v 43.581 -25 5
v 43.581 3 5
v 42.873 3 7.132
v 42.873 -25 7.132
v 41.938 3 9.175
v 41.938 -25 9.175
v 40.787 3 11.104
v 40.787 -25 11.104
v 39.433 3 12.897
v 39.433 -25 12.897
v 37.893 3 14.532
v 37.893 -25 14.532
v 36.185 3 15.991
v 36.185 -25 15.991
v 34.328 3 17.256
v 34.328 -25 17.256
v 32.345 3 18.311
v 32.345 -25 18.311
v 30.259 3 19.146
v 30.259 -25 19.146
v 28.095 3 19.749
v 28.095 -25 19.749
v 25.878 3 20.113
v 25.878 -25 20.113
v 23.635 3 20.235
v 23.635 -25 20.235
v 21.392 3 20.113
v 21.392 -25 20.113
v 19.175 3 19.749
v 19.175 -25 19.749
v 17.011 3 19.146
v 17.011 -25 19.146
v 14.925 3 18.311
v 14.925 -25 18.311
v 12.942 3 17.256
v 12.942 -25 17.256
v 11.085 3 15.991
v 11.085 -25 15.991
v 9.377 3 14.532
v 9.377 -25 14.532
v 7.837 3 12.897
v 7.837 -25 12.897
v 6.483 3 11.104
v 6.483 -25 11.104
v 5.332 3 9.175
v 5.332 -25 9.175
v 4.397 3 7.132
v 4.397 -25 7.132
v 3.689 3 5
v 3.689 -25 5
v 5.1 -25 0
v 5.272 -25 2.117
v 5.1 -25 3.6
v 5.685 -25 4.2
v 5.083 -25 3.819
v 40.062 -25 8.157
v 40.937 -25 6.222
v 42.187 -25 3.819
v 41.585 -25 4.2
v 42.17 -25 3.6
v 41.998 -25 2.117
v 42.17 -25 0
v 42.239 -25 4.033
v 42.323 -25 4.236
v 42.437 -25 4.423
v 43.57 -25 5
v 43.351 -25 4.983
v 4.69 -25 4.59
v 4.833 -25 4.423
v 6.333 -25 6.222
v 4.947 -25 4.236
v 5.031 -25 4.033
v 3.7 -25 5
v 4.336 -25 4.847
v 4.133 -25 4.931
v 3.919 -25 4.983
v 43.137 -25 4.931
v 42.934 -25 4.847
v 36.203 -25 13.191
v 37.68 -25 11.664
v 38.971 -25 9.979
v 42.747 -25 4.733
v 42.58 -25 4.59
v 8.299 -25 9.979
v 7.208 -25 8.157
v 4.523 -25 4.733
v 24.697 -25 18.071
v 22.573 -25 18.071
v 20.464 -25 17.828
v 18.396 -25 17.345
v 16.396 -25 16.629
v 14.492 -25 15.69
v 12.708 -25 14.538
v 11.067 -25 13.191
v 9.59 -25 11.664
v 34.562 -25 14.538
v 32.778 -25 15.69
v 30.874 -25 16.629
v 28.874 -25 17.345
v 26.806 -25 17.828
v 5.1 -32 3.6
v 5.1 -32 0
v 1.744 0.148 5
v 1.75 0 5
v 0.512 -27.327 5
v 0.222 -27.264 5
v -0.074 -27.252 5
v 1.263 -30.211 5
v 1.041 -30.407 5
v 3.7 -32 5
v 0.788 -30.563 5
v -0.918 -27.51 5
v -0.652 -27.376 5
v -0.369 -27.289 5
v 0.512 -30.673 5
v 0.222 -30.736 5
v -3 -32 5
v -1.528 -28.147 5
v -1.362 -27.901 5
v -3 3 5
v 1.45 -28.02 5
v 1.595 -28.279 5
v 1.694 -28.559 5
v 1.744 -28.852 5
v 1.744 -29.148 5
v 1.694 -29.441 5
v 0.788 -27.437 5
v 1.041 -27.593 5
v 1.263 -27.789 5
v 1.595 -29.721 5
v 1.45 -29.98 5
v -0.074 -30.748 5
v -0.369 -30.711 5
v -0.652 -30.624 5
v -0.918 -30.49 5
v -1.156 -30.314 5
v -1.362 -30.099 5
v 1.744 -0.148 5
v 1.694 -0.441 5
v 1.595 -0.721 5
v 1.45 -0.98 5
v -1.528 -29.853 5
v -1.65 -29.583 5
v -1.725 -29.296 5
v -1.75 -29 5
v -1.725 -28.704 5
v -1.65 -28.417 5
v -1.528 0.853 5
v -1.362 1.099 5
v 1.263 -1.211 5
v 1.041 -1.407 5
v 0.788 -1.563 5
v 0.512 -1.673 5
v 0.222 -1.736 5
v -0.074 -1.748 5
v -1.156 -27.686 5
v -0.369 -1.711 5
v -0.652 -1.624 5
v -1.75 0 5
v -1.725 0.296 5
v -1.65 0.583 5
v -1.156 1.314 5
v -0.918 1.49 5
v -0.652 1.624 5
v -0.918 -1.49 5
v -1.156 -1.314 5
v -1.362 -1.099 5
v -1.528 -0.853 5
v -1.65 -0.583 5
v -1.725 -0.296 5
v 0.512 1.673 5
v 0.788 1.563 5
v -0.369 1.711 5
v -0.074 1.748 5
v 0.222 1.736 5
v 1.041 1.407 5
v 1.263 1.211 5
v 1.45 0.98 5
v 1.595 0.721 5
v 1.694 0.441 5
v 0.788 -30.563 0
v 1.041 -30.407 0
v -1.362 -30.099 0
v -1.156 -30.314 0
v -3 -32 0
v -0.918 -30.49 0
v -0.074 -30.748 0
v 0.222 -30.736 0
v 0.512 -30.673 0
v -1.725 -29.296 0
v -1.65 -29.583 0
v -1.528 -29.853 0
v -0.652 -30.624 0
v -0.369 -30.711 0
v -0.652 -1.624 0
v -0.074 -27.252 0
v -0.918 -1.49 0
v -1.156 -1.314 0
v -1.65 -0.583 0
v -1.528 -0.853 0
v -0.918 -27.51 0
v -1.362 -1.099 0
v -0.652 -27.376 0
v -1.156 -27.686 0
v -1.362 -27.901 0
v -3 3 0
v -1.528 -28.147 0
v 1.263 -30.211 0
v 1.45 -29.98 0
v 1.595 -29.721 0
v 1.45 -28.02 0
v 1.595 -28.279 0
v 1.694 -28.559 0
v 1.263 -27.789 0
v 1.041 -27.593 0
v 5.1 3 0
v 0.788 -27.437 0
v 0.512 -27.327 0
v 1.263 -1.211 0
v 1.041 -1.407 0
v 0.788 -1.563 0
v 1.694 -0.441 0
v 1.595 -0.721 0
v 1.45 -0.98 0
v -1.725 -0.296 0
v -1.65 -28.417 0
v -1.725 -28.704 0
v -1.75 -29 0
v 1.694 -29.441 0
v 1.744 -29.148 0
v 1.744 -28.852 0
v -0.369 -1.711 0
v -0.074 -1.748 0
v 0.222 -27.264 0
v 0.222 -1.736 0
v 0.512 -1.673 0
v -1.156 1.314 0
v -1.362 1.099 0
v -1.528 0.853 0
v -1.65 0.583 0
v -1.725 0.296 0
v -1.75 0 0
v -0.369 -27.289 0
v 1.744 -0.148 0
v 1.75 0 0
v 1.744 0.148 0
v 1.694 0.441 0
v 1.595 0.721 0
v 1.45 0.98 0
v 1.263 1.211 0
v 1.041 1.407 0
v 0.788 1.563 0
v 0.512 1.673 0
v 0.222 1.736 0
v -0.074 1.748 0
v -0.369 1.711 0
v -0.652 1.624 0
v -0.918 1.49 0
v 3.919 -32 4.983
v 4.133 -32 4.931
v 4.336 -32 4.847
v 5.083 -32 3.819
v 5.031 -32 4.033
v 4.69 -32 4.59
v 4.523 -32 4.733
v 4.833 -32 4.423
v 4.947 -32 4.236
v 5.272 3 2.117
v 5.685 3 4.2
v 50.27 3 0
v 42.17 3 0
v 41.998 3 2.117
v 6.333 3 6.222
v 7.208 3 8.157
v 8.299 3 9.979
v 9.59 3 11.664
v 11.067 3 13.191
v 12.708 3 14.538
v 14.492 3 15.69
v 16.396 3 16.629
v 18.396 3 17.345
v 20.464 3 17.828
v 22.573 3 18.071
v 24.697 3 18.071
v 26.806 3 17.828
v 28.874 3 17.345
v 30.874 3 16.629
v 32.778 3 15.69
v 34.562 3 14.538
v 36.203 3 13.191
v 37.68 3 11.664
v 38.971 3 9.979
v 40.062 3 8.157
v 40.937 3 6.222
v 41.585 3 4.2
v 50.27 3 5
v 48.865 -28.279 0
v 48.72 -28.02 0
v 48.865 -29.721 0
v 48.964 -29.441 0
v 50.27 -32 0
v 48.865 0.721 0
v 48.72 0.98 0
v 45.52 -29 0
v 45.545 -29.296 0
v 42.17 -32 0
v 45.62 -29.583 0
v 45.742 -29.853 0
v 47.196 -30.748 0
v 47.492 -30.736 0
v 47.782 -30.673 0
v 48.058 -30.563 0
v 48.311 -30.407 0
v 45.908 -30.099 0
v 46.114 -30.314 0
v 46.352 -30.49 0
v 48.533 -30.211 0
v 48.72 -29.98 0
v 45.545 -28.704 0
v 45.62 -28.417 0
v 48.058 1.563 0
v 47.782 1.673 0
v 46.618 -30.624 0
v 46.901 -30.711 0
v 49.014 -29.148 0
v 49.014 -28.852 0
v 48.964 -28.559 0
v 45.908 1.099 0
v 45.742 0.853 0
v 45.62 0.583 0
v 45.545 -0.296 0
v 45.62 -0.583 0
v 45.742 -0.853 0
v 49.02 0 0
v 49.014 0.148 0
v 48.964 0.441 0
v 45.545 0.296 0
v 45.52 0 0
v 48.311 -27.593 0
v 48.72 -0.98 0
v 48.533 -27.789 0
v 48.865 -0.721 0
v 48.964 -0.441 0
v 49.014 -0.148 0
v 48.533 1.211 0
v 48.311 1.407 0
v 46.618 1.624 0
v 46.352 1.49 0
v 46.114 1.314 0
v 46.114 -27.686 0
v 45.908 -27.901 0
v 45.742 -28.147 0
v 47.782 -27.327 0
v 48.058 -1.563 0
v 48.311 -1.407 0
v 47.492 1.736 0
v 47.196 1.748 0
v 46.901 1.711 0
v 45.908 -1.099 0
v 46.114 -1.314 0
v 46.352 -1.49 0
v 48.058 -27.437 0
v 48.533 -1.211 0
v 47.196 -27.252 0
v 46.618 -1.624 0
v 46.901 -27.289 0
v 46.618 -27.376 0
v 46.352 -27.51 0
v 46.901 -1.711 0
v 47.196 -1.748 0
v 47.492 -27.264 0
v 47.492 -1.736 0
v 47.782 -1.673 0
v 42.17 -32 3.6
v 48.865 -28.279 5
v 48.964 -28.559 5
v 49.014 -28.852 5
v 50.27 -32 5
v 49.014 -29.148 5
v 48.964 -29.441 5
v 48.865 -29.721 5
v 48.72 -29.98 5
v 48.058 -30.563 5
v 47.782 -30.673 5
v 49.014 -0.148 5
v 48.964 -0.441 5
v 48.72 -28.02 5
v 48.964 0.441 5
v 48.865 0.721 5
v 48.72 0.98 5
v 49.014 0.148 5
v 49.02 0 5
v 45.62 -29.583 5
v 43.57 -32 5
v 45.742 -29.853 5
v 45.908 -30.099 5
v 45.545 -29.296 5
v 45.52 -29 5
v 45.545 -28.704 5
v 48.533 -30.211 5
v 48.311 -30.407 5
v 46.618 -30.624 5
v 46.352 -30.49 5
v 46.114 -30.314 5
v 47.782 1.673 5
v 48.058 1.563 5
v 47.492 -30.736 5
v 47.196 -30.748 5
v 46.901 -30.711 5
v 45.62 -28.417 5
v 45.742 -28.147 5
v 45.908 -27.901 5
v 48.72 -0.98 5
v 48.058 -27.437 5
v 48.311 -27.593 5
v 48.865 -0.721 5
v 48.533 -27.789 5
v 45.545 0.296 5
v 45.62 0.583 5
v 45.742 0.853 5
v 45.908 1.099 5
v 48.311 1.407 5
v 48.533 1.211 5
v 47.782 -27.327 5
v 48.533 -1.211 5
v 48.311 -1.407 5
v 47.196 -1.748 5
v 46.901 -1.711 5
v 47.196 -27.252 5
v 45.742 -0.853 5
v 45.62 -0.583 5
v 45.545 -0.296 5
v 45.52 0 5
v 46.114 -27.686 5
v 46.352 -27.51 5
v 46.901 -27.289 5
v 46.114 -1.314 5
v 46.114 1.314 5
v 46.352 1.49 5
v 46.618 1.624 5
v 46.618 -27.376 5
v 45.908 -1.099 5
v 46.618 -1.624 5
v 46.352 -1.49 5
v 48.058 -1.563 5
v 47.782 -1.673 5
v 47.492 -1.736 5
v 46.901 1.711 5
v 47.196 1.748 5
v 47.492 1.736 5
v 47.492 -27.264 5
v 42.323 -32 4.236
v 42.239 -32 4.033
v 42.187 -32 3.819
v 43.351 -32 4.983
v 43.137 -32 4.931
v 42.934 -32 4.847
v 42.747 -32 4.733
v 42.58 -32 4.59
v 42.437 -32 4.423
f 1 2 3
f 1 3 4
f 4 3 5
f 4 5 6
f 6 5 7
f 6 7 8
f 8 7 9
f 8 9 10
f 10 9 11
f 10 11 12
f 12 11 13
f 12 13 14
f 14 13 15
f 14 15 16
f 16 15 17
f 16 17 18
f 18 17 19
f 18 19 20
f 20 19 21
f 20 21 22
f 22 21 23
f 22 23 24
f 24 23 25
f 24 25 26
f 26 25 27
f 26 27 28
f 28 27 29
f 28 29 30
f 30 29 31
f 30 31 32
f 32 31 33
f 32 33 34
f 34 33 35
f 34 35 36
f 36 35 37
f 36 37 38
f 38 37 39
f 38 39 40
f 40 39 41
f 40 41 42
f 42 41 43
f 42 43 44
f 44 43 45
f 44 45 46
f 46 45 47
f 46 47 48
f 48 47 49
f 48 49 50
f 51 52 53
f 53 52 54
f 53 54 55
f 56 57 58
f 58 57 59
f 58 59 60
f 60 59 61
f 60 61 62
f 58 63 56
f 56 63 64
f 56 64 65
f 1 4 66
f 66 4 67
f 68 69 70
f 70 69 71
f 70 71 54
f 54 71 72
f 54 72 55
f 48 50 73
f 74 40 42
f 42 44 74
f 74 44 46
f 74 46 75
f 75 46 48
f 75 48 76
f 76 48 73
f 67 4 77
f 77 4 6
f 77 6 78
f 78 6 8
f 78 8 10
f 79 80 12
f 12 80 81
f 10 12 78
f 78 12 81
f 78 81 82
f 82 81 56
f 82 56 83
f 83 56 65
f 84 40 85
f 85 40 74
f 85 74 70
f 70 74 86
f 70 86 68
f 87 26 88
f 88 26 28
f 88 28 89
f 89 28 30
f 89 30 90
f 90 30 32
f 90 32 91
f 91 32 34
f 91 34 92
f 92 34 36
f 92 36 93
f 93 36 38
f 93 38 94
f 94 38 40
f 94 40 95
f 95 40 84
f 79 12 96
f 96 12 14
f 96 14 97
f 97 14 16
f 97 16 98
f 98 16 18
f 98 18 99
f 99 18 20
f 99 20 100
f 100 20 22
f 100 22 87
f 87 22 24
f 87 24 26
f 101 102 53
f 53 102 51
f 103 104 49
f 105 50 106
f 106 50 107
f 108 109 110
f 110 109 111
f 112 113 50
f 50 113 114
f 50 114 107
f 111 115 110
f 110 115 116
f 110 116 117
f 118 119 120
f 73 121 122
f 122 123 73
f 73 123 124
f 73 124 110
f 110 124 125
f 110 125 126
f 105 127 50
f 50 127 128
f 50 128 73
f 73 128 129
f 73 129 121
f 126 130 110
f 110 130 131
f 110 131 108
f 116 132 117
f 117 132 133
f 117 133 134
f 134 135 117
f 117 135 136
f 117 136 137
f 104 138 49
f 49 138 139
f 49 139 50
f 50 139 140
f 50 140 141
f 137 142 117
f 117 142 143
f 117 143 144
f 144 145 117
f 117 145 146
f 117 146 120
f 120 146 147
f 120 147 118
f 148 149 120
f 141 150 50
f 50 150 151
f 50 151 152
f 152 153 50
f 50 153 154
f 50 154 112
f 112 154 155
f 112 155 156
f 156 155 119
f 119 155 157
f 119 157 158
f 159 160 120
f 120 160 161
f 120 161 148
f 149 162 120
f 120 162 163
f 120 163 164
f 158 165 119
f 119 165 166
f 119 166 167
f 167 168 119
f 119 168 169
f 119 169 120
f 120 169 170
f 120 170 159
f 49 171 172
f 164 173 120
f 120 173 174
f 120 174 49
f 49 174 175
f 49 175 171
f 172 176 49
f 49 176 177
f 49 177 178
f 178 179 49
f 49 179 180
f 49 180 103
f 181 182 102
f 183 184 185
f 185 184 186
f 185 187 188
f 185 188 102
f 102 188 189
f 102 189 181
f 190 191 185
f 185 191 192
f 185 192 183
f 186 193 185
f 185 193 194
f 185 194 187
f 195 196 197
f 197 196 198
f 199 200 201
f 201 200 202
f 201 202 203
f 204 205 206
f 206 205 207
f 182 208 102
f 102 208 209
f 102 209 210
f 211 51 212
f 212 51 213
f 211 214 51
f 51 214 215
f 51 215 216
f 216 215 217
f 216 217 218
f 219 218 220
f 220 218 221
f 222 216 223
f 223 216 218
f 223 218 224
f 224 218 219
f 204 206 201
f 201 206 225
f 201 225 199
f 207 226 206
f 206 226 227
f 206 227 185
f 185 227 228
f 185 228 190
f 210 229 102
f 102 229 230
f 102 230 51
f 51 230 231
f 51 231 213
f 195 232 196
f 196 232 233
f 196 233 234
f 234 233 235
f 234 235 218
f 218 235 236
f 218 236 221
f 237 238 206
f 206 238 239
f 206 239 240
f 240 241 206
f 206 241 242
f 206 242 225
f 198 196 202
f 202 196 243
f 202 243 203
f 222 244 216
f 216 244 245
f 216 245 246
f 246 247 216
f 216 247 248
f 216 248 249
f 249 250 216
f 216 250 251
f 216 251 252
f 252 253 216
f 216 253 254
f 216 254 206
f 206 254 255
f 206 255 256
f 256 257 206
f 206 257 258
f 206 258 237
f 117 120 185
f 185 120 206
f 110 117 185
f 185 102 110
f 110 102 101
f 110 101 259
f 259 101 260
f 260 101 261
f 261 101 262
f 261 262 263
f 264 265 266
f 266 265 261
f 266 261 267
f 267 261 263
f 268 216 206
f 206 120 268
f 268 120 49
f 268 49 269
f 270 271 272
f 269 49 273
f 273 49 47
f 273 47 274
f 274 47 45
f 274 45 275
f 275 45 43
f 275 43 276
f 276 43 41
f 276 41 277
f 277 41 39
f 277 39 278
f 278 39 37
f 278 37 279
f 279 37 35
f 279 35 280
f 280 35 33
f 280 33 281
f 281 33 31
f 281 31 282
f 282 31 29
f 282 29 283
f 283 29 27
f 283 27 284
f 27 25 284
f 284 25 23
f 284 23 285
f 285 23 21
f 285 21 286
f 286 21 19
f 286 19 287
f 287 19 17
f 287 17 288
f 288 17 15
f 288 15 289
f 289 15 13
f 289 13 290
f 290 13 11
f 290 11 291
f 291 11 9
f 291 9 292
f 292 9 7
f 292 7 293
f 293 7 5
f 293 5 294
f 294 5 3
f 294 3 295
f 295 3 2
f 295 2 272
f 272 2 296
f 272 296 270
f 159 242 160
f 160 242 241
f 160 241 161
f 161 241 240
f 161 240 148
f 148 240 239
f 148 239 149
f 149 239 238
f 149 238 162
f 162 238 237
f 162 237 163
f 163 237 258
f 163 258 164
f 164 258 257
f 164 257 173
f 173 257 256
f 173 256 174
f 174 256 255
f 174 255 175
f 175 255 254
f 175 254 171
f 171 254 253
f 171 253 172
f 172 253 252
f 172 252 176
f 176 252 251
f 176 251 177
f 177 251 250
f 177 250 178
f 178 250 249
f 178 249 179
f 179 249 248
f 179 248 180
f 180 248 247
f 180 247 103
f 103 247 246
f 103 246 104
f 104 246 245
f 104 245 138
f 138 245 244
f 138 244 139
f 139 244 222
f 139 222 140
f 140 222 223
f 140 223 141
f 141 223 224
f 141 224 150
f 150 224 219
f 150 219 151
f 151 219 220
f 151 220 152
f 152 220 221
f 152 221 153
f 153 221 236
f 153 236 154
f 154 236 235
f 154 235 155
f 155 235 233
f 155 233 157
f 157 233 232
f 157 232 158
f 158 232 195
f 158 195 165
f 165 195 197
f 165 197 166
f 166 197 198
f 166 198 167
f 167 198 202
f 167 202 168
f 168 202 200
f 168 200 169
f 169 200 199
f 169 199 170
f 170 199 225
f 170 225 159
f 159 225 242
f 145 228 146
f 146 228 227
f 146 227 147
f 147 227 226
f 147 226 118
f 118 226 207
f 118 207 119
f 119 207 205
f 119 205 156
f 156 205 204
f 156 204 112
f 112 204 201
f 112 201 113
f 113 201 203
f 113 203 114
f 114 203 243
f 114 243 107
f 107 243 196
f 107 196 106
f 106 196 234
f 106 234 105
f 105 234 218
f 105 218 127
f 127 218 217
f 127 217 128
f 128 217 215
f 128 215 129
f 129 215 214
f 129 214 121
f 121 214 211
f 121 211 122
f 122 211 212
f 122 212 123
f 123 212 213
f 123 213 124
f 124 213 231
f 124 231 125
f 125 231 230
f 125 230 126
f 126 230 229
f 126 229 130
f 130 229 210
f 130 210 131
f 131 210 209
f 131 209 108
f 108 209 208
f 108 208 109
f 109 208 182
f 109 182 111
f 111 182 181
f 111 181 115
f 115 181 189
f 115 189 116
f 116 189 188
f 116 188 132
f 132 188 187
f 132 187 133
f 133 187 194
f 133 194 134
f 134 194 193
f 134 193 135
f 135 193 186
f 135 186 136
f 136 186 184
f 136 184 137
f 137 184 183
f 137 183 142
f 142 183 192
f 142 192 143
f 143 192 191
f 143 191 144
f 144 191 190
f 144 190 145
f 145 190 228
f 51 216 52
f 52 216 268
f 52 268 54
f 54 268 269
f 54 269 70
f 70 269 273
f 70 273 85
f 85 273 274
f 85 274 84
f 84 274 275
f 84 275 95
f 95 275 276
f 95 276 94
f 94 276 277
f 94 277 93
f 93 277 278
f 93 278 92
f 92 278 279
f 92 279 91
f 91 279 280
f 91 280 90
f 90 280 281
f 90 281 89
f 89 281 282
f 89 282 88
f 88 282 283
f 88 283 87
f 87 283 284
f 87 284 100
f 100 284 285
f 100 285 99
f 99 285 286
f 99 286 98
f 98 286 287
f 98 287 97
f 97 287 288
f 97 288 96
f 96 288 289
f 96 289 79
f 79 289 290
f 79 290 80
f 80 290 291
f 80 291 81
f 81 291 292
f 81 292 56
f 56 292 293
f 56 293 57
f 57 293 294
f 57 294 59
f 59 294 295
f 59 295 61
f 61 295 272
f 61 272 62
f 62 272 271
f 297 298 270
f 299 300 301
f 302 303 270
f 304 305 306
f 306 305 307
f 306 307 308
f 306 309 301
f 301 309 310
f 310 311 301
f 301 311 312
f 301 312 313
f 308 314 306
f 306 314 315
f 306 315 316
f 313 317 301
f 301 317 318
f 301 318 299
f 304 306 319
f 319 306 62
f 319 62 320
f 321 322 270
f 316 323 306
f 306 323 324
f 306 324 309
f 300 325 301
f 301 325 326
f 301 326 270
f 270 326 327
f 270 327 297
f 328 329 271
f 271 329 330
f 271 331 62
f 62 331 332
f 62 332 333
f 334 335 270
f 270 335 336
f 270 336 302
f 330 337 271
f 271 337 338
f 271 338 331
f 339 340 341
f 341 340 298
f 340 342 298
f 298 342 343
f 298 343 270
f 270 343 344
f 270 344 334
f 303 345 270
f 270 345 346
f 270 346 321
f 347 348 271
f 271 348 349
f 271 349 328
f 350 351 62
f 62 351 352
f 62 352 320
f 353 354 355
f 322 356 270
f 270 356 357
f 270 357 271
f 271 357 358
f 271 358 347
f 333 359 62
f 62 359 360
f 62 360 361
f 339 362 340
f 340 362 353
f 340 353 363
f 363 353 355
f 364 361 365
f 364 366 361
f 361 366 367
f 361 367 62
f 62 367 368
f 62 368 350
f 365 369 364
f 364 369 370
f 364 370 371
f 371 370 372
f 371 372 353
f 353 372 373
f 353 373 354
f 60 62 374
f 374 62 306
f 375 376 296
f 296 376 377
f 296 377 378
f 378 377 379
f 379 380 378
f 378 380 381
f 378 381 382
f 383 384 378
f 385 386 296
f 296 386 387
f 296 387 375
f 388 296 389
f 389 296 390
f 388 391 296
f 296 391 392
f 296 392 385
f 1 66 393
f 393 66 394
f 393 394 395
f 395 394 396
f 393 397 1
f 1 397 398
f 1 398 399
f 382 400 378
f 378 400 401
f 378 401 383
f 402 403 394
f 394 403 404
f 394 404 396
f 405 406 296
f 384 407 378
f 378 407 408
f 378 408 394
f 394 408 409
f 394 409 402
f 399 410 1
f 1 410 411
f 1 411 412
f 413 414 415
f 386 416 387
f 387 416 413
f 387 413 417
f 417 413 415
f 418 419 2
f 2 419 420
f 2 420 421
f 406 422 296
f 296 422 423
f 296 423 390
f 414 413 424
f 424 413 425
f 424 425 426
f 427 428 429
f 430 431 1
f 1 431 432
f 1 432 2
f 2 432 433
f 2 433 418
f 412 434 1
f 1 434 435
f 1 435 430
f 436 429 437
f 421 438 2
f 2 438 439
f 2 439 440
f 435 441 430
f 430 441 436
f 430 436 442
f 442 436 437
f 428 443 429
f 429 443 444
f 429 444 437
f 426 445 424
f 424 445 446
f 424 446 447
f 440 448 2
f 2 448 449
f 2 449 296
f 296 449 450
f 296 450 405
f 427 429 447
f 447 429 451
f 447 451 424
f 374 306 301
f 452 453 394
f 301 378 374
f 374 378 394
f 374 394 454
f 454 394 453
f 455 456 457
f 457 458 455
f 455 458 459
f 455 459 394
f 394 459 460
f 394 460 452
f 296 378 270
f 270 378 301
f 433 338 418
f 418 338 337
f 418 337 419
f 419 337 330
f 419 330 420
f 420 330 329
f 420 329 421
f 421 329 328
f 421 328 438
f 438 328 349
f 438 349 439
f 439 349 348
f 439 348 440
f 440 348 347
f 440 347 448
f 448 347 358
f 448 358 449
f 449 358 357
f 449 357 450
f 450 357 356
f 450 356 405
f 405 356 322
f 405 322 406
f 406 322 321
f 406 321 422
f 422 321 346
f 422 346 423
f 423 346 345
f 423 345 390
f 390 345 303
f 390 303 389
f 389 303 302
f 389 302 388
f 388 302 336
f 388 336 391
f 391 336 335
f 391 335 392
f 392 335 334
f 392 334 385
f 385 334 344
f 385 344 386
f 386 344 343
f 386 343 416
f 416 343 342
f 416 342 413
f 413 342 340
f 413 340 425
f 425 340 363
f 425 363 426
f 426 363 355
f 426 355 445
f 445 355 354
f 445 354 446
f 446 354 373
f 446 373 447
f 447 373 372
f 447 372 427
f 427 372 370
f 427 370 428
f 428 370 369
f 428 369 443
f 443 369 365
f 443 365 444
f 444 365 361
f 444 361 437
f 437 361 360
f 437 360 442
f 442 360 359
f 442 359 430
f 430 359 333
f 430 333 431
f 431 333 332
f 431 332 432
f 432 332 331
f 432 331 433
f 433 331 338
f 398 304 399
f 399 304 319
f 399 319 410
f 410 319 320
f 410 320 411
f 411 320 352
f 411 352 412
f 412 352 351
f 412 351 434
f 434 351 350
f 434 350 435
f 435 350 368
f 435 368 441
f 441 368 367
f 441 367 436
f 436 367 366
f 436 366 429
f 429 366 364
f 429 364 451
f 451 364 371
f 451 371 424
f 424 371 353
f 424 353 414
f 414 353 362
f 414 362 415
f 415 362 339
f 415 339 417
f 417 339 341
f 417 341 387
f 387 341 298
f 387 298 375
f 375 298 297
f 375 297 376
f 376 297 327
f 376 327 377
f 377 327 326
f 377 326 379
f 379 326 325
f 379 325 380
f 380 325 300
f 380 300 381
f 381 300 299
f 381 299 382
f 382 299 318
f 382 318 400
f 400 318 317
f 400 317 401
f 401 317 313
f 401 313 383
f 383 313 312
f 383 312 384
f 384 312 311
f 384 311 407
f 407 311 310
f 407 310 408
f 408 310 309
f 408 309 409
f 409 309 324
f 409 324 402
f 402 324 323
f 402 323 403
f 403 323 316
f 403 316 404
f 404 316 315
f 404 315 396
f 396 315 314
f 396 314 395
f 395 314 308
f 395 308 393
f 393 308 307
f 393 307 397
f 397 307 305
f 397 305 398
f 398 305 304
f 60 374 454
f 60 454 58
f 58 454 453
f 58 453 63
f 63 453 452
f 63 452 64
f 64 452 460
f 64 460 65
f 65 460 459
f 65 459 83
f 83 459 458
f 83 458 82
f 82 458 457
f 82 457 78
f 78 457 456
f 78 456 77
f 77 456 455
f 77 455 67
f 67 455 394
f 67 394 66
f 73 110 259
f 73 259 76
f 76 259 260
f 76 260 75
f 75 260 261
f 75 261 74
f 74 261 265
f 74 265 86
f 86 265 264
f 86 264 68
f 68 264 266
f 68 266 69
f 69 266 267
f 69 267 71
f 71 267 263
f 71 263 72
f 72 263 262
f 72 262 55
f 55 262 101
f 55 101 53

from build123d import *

# Parameters (mm, degrees)
SKETCH1_R             = 1.75
BOSS_EXTRUDE1_DEPTH   = 5
BOSS_EXTRUDE1_2_DEPTH = 5
SKETCH1_2_R           = 1.75
BOSS_EXTRUDE2_DEPTH   = 5
BOSS_EXTRUDE3_DEPTH   = 28
FILLET1_R             = 1.4


with BuildPart() as part:
    # Sketch1 → Boss-Extrude1 (new body)
    with BuildSketch(Plane.XY):
        Polygon((-3, 3), (5.1, 3), (5.1, -32), (-3, -32), (-3, -26), align=None)
        Circle(SKETCH1_R, mode=Mode.SUBTRACT)
        with Locations((0, -29)):
            Circle(SKETCH1_R, mode=Mode.SUBTRACT)
    extrude(amount=BOSS_EXTRUDE1_DEPTH)



with BuildPart() as body_2:
    # Sketch1 → Boss-Extrude1 2 (new body)
    with BuildSketch(Plane.XY):
        Polygon((50.27, 3), (42.17, 3), (42.17, -32), (50.27, -32), (50.27, -26), align=None)
        with Locations((47.27, 0)):
            Circle(SKETCH1_R, mode=Mode.SUBTRACT)
        with Locations((47.27, -29)):
            Circle(SKETCH1_R, mode=Mode.SUBTRACT)
    extrude(amount=BOSS_EXTRUDE1_2_DEPTH)


with BuildPart() as part_1:
    add(part.part)

    add(body_2.part)  # Boss-Extrude2 merges body 2
    # Sketch1<2> → Boss-Extrude2 (add)
    # profile 1 of 2: a face of its own
    with BuildSketch(Plane.XY):
        Polygon((-3, 3), (5.1, 3), (5.1, -32), (-3, -32), (-3, -26), align=None)
        Circle(SKETCH1_2_R, mode=Mode.SUBTRACT)
        with Locations((0, -29)):
            Circle(SKETCH1_2_R, mode=Mode.SUBTRACT)
    # profile 2 of 2: a face of its own
    with BuildSketch(Plane.XY):
        Polygon((50.27, 3), (42.17, 3), (42.17, -32), (50.27, -32), (50.27, -26), align=None)
        with Locations((47.27, 0)):
            Circle(SKETCH1_2_R, mode=Mode.SUBTRACT)
        with Locations((47.27, -29)):
            Circle(SKETCH1_2_R, mode=Mode.SUBTRACT)
    extrude(amount=BOSS_EXTRUDE2_DEPTH)

    # Sketch2 → Boss-Extrude3 (add)
    with BuildSketch(Plane(origin=(0, 3, 0), x_dir=(1, 0, 0), z_dir=(0, 1, 0))):
        with BuildLine():
            Line((42.17, 0), (44.305, 0))
            ThreePointArc((44.305, 0), (23.635, -20.235462541), (2.965, 0))
            Line((2.965, 0), (5.1, 0))
            ThreePointArc((5.1, 0), (23.635, -18.100999821), (42.17, 0))
        make_face()
    extrude(amount=-BOSS_EXTRUDE3_DEPTH)

    # Fillet1
    fillet1_edges = [part_1.edges().sort_by_distance(p)[0] for p in [
        (42.17, -28.5, 5),
        (5.1, -28.5, 5),
    ]]
    fillet(fillet1_edges, radius=FILLET1_R)


solid = part_1.part
